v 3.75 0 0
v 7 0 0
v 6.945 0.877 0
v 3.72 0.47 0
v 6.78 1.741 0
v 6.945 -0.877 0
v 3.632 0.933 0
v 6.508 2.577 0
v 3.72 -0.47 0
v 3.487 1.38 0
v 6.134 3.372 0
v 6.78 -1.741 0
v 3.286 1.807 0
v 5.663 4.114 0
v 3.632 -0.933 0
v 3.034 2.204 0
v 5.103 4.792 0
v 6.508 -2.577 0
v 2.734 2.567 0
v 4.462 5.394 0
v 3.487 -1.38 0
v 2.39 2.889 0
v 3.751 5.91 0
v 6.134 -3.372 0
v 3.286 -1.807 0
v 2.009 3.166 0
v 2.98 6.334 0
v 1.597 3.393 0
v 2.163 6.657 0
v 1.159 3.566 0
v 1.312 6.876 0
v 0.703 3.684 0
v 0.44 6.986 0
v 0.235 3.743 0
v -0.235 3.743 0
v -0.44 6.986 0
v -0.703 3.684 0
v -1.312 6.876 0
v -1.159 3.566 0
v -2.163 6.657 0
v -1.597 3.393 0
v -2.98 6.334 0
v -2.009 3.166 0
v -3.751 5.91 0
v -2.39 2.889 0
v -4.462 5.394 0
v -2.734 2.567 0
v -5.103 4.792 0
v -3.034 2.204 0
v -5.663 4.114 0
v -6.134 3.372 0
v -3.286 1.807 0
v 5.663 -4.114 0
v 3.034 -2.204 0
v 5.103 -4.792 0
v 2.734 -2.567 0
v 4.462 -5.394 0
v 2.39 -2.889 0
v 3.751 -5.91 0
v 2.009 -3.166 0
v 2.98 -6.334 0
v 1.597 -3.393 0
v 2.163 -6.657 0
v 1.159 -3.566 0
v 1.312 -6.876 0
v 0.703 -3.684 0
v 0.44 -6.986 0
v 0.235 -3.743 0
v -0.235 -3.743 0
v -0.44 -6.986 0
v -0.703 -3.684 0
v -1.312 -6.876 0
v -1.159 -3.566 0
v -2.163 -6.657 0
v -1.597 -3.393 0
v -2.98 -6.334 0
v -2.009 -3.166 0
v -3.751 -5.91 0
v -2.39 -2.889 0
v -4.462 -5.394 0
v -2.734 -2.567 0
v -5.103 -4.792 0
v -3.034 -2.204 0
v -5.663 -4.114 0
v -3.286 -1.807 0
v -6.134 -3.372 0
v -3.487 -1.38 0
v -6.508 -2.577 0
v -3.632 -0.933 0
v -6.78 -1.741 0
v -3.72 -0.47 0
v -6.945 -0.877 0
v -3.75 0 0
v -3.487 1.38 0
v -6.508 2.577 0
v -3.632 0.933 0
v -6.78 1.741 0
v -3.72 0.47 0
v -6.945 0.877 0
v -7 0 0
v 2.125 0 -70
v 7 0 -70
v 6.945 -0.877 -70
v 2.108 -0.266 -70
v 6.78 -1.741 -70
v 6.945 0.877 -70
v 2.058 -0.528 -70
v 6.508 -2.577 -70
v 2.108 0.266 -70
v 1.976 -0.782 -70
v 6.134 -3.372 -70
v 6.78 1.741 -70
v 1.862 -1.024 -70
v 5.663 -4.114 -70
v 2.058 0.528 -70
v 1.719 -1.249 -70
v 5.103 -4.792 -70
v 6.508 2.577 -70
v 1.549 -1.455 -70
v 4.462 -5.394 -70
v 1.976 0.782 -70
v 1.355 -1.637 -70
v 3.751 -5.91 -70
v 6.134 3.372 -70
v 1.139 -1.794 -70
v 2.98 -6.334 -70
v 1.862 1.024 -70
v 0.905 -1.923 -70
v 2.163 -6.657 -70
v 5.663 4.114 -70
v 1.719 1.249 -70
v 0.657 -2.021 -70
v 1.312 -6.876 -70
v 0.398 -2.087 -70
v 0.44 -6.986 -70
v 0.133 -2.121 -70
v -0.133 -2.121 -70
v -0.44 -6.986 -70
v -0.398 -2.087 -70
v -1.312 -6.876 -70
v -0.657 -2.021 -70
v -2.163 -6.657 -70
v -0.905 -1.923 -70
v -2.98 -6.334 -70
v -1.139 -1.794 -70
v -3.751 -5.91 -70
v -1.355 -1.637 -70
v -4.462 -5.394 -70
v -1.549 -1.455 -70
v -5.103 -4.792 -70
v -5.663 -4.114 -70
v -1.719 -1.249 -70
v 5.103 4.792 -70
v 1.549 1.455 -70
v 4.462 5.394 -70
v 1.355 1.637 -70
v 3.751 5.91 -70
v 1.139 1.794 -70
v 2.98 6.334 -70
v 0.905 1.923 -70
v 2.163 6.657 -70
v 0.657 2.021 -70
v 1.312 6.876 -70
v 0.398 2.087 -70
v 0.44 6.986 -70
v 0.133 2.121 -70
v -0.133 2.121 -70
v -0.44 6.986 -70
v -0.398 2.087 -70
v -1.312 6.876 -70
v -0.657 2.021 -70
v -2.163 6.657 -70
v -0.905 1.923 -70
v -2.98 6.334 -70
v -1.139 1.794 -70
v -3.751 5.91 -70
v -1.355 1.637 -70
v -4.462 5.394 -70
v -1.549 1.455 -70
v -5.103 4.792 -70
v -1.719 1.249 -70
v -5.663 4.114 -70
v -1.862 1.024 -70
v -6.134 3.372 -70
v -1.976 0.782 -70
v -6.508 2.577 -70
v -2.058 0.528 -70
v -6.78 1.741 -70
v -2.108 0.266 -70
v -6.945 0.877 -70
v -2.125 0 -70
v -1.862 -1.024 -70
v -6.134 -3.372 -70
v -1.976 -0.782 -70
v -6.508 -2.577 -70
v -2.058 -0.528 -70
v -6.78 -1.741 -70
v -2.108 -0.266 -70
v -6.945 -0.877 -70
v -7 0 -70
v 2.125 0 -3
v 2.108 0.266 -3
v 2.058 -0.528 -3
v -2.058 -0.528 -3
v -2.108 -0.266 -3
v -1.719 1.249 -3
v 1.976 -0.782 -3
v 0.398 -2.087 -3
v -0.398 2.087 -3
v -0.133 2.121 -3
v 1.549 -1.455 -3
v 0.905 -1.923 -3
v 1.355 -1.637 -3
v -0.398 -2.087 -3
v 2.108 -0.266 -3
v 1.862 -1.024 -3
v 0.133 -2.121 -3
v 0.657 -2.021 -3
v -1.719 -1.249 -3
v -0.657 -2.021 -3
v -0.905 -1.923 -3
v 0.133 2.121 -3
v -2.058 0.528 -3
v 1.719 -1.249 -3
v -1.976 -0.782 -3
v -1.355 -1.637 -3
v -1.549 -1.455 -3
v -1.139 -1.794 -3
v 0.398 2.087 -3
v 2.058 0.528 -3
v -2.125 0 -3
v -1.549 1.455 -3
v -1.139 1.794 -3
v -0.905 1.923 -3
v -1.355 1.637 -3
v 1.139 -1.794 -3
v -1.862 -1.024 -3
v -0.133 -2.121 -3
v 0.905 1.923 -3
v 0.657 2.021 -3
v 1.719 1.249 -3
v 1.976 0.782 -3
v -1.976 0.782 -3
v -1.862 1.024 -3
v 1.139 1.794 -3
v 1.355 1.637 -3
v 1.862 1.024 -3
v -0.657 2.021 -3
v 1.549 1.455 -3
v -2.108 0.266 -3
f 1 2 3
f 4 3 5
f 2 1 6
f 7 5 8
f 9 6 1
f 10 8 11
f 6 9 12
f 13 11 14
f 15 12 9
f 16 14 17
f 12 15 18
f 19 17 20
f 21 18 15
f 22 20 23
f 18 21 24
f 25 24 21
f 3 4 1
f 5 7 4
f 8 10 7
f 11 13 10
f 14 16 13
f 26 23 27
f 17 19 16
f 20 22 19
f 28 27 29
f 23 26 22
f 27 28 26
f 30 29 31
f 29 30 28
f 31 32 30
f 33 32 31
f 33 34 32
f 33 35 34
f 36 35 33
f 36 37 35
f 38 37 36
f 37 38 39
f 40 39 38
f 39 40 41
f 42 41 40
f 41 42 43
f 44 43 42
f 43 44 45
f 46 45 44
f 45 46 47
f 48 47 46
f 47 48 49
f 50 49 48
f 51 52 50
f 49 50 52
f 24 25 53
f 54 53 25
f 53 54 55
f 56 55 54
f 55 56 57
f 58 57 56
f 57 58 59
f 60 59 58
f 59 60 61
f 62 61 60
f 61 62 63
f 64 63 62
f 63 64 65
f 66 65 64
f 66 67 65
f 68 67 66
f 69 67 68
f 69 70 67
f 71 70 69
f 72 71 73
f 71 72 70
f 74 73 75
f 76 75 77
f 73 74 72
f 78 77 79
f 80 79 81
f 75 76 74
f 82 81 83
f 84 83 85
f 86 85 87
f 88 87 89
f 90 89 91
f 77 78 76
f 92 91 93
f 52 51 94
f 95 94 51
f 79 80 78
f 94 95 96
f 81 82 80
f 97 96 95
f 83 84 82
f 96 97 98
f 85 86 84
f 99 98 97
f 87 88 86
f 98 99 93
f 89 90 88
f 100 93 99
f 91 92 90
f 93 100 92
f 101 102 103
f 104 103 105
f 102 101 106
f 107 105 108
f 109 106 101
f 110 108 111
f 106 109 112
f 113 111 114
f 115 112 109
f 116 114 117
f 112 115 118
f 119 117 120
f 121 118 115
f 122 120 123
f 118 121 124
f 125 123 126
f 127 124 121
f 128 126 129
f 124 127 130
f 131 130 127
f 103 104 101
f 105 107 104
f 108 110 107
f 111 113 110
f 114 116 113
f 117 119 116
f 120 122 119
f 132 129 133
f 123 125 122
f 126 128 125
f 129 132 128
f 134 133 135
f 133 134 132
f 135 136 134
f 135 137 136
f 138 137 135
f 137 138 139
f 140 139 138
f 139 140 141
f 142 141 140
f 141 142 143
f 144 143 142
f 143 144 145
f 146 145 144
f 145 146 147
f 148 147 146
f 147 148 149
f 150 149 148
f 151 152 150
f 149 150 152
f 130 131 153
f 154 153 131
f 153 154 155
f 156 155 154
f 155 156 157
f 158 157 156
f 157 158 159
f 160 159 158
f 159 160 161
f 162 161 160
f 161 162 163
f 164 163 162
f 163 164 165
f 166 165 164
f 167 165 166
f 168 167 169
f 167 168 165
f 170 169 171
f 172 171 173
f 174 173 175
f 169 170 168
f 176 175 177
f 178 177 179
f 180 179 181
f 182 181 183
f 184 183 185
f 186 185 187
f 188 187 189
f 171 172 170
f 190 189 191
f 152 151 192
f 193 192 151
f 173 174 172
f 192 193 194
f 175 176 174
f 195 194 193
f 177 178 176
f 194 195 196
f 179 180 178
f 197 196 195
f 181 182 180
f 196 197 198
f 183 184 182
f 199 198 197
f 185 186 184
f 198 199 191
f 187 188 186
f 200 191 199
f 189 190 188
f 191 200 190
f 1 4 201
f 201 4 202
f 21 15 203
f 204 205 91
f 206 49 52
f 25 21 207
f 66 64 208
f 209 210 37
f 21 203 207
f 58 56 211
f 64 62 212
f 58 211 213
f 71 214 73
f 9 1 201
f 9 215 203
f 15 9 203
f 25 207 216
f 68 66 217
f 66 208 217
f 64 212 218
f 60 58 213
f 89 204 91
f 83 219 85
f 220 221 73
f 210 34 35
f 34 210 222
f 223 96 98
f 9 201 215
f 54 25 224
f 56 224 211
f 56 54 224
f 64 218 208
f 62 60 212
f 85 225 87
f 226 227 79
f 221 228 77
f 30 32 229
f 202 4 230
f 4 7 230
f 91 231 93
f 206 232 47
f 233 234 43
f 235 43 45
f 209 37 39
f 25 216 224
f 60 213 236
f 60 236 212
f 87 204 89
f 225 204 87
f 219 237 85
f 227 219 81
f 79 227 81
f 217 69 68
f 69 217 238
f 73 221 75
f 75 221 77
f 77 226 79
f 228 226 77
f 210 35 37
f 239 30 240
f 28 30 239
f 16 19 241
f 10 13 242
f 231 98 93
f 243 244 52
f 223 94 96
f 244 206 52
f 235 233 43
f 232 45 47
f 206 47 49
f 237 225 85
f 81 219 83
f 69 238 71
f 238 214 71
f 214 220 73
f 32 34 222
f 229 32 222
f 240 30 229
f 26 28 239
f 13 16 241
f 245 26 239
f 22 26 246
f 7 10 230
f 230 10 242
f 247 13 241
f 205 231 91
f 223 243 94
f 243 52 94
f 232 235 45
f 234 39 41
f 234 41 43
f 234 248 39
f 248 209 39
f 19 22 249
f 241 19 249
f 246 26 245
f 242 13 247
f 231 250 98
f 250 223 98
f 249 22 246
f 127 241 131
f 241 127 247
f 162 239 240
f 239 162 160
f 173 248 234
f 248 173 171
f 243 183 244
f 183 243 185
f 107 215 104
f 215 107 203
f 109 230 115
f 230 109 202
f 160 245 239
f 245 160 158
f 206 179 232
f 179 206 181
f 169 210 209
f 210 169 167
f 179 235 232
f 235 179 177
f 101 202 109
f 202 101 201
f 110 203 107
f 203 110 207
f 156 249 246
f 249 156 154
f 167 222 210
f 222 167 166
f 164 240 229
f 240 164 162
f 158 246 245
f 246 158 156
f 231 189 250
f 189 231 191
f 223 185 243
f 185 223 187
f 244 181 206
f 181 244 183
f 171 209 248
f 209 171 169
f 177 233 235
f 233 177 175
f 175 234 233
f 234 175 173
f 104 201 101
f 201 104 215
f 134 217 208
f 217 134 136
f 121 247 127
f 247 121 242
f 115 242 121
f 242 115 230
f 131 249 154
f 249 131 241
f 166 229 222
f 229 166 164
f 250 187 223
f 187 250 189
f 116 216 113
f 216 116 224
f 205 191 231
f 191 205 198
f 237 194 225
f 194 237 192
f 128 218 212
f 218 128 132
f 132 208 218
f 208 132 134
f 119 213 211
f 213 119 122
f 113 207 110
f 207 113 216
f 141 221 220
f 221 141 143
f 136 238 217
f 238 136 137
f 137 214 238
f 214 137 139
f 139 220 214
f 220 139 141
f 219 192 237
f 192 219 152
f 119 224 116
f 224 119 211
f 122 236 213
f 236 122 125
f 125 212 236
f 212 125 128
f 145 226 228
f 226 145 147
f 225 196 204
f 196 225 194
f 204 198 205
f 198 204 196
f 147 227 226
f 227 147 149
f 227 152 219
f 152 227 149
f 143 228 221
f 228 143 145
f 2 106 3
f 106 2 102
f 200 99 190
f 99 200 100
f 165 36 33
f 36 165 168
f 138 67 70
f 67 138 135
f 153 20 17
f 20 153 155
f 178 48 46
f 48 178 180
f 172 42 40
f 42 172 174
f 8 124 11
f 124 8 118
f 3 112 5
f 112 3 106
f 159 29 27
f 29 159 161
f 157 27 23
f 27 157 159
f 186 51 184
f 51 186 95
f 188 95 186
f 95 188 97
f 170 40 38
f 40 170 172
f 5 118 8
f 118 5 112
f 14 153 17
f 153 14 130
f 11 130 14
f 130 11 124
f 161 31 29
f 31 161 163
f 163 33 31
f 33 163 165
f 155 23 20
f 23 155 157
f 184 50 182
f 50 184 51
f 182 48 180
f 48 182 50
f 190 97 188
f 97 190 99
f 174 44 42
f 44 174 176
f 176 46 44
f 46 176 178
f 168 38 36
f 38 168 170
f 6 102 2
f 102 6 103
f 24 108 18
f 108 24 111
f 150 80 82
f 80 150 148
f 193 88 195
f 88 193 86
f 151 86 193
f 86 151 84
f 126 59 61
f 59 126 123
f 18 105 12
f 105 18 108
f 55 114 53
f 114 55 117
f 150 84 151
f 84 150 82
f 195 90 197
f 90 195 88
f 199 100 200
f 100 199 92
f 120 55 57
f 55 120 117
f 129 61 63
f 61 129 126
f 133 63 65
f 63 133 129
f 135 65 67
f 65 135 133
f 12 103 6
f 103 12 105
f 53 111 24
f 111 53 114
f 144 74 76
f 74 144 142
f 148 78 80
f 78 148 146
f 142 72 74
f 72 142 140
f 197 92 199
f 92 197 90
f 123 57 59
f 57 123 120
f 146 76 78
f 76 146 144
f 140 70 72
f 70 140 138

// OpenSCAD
$fn = 50;


difference() {
	union() {
		translate(v = [0, 0, -70.0000000000]) {
			cylinder(h = 70, r = 7.0000000000);
		}
		cylinder(h = 0, r = 13.0000000000);
	}
	union() {
		translate(v = [0, 0, 0]) {
			rotate(a = [0, 0, 0]) {
				difference() {
					union() {
						#translate(v = [0, 0, -70.0000000000]) {
							cylinder(h = 70, r = 2.0000000000);
						}
						#translate(v = [0, 0, -3]) {
							cylinder(h = 3, r1 = 2.1250000000, r2 = 3.7500000000);
						}
						#translate(v = [0, 0, -70.0000000000]) {
							cylinder(h = 70, r = 2.1250000000);
						}
						#translate(v = [0, 0, -70.0000000000]) {
							cylinder(h = 70, r = 2.0000000000);
						}
					}
					union();
				}
			}
		}
	}
}
